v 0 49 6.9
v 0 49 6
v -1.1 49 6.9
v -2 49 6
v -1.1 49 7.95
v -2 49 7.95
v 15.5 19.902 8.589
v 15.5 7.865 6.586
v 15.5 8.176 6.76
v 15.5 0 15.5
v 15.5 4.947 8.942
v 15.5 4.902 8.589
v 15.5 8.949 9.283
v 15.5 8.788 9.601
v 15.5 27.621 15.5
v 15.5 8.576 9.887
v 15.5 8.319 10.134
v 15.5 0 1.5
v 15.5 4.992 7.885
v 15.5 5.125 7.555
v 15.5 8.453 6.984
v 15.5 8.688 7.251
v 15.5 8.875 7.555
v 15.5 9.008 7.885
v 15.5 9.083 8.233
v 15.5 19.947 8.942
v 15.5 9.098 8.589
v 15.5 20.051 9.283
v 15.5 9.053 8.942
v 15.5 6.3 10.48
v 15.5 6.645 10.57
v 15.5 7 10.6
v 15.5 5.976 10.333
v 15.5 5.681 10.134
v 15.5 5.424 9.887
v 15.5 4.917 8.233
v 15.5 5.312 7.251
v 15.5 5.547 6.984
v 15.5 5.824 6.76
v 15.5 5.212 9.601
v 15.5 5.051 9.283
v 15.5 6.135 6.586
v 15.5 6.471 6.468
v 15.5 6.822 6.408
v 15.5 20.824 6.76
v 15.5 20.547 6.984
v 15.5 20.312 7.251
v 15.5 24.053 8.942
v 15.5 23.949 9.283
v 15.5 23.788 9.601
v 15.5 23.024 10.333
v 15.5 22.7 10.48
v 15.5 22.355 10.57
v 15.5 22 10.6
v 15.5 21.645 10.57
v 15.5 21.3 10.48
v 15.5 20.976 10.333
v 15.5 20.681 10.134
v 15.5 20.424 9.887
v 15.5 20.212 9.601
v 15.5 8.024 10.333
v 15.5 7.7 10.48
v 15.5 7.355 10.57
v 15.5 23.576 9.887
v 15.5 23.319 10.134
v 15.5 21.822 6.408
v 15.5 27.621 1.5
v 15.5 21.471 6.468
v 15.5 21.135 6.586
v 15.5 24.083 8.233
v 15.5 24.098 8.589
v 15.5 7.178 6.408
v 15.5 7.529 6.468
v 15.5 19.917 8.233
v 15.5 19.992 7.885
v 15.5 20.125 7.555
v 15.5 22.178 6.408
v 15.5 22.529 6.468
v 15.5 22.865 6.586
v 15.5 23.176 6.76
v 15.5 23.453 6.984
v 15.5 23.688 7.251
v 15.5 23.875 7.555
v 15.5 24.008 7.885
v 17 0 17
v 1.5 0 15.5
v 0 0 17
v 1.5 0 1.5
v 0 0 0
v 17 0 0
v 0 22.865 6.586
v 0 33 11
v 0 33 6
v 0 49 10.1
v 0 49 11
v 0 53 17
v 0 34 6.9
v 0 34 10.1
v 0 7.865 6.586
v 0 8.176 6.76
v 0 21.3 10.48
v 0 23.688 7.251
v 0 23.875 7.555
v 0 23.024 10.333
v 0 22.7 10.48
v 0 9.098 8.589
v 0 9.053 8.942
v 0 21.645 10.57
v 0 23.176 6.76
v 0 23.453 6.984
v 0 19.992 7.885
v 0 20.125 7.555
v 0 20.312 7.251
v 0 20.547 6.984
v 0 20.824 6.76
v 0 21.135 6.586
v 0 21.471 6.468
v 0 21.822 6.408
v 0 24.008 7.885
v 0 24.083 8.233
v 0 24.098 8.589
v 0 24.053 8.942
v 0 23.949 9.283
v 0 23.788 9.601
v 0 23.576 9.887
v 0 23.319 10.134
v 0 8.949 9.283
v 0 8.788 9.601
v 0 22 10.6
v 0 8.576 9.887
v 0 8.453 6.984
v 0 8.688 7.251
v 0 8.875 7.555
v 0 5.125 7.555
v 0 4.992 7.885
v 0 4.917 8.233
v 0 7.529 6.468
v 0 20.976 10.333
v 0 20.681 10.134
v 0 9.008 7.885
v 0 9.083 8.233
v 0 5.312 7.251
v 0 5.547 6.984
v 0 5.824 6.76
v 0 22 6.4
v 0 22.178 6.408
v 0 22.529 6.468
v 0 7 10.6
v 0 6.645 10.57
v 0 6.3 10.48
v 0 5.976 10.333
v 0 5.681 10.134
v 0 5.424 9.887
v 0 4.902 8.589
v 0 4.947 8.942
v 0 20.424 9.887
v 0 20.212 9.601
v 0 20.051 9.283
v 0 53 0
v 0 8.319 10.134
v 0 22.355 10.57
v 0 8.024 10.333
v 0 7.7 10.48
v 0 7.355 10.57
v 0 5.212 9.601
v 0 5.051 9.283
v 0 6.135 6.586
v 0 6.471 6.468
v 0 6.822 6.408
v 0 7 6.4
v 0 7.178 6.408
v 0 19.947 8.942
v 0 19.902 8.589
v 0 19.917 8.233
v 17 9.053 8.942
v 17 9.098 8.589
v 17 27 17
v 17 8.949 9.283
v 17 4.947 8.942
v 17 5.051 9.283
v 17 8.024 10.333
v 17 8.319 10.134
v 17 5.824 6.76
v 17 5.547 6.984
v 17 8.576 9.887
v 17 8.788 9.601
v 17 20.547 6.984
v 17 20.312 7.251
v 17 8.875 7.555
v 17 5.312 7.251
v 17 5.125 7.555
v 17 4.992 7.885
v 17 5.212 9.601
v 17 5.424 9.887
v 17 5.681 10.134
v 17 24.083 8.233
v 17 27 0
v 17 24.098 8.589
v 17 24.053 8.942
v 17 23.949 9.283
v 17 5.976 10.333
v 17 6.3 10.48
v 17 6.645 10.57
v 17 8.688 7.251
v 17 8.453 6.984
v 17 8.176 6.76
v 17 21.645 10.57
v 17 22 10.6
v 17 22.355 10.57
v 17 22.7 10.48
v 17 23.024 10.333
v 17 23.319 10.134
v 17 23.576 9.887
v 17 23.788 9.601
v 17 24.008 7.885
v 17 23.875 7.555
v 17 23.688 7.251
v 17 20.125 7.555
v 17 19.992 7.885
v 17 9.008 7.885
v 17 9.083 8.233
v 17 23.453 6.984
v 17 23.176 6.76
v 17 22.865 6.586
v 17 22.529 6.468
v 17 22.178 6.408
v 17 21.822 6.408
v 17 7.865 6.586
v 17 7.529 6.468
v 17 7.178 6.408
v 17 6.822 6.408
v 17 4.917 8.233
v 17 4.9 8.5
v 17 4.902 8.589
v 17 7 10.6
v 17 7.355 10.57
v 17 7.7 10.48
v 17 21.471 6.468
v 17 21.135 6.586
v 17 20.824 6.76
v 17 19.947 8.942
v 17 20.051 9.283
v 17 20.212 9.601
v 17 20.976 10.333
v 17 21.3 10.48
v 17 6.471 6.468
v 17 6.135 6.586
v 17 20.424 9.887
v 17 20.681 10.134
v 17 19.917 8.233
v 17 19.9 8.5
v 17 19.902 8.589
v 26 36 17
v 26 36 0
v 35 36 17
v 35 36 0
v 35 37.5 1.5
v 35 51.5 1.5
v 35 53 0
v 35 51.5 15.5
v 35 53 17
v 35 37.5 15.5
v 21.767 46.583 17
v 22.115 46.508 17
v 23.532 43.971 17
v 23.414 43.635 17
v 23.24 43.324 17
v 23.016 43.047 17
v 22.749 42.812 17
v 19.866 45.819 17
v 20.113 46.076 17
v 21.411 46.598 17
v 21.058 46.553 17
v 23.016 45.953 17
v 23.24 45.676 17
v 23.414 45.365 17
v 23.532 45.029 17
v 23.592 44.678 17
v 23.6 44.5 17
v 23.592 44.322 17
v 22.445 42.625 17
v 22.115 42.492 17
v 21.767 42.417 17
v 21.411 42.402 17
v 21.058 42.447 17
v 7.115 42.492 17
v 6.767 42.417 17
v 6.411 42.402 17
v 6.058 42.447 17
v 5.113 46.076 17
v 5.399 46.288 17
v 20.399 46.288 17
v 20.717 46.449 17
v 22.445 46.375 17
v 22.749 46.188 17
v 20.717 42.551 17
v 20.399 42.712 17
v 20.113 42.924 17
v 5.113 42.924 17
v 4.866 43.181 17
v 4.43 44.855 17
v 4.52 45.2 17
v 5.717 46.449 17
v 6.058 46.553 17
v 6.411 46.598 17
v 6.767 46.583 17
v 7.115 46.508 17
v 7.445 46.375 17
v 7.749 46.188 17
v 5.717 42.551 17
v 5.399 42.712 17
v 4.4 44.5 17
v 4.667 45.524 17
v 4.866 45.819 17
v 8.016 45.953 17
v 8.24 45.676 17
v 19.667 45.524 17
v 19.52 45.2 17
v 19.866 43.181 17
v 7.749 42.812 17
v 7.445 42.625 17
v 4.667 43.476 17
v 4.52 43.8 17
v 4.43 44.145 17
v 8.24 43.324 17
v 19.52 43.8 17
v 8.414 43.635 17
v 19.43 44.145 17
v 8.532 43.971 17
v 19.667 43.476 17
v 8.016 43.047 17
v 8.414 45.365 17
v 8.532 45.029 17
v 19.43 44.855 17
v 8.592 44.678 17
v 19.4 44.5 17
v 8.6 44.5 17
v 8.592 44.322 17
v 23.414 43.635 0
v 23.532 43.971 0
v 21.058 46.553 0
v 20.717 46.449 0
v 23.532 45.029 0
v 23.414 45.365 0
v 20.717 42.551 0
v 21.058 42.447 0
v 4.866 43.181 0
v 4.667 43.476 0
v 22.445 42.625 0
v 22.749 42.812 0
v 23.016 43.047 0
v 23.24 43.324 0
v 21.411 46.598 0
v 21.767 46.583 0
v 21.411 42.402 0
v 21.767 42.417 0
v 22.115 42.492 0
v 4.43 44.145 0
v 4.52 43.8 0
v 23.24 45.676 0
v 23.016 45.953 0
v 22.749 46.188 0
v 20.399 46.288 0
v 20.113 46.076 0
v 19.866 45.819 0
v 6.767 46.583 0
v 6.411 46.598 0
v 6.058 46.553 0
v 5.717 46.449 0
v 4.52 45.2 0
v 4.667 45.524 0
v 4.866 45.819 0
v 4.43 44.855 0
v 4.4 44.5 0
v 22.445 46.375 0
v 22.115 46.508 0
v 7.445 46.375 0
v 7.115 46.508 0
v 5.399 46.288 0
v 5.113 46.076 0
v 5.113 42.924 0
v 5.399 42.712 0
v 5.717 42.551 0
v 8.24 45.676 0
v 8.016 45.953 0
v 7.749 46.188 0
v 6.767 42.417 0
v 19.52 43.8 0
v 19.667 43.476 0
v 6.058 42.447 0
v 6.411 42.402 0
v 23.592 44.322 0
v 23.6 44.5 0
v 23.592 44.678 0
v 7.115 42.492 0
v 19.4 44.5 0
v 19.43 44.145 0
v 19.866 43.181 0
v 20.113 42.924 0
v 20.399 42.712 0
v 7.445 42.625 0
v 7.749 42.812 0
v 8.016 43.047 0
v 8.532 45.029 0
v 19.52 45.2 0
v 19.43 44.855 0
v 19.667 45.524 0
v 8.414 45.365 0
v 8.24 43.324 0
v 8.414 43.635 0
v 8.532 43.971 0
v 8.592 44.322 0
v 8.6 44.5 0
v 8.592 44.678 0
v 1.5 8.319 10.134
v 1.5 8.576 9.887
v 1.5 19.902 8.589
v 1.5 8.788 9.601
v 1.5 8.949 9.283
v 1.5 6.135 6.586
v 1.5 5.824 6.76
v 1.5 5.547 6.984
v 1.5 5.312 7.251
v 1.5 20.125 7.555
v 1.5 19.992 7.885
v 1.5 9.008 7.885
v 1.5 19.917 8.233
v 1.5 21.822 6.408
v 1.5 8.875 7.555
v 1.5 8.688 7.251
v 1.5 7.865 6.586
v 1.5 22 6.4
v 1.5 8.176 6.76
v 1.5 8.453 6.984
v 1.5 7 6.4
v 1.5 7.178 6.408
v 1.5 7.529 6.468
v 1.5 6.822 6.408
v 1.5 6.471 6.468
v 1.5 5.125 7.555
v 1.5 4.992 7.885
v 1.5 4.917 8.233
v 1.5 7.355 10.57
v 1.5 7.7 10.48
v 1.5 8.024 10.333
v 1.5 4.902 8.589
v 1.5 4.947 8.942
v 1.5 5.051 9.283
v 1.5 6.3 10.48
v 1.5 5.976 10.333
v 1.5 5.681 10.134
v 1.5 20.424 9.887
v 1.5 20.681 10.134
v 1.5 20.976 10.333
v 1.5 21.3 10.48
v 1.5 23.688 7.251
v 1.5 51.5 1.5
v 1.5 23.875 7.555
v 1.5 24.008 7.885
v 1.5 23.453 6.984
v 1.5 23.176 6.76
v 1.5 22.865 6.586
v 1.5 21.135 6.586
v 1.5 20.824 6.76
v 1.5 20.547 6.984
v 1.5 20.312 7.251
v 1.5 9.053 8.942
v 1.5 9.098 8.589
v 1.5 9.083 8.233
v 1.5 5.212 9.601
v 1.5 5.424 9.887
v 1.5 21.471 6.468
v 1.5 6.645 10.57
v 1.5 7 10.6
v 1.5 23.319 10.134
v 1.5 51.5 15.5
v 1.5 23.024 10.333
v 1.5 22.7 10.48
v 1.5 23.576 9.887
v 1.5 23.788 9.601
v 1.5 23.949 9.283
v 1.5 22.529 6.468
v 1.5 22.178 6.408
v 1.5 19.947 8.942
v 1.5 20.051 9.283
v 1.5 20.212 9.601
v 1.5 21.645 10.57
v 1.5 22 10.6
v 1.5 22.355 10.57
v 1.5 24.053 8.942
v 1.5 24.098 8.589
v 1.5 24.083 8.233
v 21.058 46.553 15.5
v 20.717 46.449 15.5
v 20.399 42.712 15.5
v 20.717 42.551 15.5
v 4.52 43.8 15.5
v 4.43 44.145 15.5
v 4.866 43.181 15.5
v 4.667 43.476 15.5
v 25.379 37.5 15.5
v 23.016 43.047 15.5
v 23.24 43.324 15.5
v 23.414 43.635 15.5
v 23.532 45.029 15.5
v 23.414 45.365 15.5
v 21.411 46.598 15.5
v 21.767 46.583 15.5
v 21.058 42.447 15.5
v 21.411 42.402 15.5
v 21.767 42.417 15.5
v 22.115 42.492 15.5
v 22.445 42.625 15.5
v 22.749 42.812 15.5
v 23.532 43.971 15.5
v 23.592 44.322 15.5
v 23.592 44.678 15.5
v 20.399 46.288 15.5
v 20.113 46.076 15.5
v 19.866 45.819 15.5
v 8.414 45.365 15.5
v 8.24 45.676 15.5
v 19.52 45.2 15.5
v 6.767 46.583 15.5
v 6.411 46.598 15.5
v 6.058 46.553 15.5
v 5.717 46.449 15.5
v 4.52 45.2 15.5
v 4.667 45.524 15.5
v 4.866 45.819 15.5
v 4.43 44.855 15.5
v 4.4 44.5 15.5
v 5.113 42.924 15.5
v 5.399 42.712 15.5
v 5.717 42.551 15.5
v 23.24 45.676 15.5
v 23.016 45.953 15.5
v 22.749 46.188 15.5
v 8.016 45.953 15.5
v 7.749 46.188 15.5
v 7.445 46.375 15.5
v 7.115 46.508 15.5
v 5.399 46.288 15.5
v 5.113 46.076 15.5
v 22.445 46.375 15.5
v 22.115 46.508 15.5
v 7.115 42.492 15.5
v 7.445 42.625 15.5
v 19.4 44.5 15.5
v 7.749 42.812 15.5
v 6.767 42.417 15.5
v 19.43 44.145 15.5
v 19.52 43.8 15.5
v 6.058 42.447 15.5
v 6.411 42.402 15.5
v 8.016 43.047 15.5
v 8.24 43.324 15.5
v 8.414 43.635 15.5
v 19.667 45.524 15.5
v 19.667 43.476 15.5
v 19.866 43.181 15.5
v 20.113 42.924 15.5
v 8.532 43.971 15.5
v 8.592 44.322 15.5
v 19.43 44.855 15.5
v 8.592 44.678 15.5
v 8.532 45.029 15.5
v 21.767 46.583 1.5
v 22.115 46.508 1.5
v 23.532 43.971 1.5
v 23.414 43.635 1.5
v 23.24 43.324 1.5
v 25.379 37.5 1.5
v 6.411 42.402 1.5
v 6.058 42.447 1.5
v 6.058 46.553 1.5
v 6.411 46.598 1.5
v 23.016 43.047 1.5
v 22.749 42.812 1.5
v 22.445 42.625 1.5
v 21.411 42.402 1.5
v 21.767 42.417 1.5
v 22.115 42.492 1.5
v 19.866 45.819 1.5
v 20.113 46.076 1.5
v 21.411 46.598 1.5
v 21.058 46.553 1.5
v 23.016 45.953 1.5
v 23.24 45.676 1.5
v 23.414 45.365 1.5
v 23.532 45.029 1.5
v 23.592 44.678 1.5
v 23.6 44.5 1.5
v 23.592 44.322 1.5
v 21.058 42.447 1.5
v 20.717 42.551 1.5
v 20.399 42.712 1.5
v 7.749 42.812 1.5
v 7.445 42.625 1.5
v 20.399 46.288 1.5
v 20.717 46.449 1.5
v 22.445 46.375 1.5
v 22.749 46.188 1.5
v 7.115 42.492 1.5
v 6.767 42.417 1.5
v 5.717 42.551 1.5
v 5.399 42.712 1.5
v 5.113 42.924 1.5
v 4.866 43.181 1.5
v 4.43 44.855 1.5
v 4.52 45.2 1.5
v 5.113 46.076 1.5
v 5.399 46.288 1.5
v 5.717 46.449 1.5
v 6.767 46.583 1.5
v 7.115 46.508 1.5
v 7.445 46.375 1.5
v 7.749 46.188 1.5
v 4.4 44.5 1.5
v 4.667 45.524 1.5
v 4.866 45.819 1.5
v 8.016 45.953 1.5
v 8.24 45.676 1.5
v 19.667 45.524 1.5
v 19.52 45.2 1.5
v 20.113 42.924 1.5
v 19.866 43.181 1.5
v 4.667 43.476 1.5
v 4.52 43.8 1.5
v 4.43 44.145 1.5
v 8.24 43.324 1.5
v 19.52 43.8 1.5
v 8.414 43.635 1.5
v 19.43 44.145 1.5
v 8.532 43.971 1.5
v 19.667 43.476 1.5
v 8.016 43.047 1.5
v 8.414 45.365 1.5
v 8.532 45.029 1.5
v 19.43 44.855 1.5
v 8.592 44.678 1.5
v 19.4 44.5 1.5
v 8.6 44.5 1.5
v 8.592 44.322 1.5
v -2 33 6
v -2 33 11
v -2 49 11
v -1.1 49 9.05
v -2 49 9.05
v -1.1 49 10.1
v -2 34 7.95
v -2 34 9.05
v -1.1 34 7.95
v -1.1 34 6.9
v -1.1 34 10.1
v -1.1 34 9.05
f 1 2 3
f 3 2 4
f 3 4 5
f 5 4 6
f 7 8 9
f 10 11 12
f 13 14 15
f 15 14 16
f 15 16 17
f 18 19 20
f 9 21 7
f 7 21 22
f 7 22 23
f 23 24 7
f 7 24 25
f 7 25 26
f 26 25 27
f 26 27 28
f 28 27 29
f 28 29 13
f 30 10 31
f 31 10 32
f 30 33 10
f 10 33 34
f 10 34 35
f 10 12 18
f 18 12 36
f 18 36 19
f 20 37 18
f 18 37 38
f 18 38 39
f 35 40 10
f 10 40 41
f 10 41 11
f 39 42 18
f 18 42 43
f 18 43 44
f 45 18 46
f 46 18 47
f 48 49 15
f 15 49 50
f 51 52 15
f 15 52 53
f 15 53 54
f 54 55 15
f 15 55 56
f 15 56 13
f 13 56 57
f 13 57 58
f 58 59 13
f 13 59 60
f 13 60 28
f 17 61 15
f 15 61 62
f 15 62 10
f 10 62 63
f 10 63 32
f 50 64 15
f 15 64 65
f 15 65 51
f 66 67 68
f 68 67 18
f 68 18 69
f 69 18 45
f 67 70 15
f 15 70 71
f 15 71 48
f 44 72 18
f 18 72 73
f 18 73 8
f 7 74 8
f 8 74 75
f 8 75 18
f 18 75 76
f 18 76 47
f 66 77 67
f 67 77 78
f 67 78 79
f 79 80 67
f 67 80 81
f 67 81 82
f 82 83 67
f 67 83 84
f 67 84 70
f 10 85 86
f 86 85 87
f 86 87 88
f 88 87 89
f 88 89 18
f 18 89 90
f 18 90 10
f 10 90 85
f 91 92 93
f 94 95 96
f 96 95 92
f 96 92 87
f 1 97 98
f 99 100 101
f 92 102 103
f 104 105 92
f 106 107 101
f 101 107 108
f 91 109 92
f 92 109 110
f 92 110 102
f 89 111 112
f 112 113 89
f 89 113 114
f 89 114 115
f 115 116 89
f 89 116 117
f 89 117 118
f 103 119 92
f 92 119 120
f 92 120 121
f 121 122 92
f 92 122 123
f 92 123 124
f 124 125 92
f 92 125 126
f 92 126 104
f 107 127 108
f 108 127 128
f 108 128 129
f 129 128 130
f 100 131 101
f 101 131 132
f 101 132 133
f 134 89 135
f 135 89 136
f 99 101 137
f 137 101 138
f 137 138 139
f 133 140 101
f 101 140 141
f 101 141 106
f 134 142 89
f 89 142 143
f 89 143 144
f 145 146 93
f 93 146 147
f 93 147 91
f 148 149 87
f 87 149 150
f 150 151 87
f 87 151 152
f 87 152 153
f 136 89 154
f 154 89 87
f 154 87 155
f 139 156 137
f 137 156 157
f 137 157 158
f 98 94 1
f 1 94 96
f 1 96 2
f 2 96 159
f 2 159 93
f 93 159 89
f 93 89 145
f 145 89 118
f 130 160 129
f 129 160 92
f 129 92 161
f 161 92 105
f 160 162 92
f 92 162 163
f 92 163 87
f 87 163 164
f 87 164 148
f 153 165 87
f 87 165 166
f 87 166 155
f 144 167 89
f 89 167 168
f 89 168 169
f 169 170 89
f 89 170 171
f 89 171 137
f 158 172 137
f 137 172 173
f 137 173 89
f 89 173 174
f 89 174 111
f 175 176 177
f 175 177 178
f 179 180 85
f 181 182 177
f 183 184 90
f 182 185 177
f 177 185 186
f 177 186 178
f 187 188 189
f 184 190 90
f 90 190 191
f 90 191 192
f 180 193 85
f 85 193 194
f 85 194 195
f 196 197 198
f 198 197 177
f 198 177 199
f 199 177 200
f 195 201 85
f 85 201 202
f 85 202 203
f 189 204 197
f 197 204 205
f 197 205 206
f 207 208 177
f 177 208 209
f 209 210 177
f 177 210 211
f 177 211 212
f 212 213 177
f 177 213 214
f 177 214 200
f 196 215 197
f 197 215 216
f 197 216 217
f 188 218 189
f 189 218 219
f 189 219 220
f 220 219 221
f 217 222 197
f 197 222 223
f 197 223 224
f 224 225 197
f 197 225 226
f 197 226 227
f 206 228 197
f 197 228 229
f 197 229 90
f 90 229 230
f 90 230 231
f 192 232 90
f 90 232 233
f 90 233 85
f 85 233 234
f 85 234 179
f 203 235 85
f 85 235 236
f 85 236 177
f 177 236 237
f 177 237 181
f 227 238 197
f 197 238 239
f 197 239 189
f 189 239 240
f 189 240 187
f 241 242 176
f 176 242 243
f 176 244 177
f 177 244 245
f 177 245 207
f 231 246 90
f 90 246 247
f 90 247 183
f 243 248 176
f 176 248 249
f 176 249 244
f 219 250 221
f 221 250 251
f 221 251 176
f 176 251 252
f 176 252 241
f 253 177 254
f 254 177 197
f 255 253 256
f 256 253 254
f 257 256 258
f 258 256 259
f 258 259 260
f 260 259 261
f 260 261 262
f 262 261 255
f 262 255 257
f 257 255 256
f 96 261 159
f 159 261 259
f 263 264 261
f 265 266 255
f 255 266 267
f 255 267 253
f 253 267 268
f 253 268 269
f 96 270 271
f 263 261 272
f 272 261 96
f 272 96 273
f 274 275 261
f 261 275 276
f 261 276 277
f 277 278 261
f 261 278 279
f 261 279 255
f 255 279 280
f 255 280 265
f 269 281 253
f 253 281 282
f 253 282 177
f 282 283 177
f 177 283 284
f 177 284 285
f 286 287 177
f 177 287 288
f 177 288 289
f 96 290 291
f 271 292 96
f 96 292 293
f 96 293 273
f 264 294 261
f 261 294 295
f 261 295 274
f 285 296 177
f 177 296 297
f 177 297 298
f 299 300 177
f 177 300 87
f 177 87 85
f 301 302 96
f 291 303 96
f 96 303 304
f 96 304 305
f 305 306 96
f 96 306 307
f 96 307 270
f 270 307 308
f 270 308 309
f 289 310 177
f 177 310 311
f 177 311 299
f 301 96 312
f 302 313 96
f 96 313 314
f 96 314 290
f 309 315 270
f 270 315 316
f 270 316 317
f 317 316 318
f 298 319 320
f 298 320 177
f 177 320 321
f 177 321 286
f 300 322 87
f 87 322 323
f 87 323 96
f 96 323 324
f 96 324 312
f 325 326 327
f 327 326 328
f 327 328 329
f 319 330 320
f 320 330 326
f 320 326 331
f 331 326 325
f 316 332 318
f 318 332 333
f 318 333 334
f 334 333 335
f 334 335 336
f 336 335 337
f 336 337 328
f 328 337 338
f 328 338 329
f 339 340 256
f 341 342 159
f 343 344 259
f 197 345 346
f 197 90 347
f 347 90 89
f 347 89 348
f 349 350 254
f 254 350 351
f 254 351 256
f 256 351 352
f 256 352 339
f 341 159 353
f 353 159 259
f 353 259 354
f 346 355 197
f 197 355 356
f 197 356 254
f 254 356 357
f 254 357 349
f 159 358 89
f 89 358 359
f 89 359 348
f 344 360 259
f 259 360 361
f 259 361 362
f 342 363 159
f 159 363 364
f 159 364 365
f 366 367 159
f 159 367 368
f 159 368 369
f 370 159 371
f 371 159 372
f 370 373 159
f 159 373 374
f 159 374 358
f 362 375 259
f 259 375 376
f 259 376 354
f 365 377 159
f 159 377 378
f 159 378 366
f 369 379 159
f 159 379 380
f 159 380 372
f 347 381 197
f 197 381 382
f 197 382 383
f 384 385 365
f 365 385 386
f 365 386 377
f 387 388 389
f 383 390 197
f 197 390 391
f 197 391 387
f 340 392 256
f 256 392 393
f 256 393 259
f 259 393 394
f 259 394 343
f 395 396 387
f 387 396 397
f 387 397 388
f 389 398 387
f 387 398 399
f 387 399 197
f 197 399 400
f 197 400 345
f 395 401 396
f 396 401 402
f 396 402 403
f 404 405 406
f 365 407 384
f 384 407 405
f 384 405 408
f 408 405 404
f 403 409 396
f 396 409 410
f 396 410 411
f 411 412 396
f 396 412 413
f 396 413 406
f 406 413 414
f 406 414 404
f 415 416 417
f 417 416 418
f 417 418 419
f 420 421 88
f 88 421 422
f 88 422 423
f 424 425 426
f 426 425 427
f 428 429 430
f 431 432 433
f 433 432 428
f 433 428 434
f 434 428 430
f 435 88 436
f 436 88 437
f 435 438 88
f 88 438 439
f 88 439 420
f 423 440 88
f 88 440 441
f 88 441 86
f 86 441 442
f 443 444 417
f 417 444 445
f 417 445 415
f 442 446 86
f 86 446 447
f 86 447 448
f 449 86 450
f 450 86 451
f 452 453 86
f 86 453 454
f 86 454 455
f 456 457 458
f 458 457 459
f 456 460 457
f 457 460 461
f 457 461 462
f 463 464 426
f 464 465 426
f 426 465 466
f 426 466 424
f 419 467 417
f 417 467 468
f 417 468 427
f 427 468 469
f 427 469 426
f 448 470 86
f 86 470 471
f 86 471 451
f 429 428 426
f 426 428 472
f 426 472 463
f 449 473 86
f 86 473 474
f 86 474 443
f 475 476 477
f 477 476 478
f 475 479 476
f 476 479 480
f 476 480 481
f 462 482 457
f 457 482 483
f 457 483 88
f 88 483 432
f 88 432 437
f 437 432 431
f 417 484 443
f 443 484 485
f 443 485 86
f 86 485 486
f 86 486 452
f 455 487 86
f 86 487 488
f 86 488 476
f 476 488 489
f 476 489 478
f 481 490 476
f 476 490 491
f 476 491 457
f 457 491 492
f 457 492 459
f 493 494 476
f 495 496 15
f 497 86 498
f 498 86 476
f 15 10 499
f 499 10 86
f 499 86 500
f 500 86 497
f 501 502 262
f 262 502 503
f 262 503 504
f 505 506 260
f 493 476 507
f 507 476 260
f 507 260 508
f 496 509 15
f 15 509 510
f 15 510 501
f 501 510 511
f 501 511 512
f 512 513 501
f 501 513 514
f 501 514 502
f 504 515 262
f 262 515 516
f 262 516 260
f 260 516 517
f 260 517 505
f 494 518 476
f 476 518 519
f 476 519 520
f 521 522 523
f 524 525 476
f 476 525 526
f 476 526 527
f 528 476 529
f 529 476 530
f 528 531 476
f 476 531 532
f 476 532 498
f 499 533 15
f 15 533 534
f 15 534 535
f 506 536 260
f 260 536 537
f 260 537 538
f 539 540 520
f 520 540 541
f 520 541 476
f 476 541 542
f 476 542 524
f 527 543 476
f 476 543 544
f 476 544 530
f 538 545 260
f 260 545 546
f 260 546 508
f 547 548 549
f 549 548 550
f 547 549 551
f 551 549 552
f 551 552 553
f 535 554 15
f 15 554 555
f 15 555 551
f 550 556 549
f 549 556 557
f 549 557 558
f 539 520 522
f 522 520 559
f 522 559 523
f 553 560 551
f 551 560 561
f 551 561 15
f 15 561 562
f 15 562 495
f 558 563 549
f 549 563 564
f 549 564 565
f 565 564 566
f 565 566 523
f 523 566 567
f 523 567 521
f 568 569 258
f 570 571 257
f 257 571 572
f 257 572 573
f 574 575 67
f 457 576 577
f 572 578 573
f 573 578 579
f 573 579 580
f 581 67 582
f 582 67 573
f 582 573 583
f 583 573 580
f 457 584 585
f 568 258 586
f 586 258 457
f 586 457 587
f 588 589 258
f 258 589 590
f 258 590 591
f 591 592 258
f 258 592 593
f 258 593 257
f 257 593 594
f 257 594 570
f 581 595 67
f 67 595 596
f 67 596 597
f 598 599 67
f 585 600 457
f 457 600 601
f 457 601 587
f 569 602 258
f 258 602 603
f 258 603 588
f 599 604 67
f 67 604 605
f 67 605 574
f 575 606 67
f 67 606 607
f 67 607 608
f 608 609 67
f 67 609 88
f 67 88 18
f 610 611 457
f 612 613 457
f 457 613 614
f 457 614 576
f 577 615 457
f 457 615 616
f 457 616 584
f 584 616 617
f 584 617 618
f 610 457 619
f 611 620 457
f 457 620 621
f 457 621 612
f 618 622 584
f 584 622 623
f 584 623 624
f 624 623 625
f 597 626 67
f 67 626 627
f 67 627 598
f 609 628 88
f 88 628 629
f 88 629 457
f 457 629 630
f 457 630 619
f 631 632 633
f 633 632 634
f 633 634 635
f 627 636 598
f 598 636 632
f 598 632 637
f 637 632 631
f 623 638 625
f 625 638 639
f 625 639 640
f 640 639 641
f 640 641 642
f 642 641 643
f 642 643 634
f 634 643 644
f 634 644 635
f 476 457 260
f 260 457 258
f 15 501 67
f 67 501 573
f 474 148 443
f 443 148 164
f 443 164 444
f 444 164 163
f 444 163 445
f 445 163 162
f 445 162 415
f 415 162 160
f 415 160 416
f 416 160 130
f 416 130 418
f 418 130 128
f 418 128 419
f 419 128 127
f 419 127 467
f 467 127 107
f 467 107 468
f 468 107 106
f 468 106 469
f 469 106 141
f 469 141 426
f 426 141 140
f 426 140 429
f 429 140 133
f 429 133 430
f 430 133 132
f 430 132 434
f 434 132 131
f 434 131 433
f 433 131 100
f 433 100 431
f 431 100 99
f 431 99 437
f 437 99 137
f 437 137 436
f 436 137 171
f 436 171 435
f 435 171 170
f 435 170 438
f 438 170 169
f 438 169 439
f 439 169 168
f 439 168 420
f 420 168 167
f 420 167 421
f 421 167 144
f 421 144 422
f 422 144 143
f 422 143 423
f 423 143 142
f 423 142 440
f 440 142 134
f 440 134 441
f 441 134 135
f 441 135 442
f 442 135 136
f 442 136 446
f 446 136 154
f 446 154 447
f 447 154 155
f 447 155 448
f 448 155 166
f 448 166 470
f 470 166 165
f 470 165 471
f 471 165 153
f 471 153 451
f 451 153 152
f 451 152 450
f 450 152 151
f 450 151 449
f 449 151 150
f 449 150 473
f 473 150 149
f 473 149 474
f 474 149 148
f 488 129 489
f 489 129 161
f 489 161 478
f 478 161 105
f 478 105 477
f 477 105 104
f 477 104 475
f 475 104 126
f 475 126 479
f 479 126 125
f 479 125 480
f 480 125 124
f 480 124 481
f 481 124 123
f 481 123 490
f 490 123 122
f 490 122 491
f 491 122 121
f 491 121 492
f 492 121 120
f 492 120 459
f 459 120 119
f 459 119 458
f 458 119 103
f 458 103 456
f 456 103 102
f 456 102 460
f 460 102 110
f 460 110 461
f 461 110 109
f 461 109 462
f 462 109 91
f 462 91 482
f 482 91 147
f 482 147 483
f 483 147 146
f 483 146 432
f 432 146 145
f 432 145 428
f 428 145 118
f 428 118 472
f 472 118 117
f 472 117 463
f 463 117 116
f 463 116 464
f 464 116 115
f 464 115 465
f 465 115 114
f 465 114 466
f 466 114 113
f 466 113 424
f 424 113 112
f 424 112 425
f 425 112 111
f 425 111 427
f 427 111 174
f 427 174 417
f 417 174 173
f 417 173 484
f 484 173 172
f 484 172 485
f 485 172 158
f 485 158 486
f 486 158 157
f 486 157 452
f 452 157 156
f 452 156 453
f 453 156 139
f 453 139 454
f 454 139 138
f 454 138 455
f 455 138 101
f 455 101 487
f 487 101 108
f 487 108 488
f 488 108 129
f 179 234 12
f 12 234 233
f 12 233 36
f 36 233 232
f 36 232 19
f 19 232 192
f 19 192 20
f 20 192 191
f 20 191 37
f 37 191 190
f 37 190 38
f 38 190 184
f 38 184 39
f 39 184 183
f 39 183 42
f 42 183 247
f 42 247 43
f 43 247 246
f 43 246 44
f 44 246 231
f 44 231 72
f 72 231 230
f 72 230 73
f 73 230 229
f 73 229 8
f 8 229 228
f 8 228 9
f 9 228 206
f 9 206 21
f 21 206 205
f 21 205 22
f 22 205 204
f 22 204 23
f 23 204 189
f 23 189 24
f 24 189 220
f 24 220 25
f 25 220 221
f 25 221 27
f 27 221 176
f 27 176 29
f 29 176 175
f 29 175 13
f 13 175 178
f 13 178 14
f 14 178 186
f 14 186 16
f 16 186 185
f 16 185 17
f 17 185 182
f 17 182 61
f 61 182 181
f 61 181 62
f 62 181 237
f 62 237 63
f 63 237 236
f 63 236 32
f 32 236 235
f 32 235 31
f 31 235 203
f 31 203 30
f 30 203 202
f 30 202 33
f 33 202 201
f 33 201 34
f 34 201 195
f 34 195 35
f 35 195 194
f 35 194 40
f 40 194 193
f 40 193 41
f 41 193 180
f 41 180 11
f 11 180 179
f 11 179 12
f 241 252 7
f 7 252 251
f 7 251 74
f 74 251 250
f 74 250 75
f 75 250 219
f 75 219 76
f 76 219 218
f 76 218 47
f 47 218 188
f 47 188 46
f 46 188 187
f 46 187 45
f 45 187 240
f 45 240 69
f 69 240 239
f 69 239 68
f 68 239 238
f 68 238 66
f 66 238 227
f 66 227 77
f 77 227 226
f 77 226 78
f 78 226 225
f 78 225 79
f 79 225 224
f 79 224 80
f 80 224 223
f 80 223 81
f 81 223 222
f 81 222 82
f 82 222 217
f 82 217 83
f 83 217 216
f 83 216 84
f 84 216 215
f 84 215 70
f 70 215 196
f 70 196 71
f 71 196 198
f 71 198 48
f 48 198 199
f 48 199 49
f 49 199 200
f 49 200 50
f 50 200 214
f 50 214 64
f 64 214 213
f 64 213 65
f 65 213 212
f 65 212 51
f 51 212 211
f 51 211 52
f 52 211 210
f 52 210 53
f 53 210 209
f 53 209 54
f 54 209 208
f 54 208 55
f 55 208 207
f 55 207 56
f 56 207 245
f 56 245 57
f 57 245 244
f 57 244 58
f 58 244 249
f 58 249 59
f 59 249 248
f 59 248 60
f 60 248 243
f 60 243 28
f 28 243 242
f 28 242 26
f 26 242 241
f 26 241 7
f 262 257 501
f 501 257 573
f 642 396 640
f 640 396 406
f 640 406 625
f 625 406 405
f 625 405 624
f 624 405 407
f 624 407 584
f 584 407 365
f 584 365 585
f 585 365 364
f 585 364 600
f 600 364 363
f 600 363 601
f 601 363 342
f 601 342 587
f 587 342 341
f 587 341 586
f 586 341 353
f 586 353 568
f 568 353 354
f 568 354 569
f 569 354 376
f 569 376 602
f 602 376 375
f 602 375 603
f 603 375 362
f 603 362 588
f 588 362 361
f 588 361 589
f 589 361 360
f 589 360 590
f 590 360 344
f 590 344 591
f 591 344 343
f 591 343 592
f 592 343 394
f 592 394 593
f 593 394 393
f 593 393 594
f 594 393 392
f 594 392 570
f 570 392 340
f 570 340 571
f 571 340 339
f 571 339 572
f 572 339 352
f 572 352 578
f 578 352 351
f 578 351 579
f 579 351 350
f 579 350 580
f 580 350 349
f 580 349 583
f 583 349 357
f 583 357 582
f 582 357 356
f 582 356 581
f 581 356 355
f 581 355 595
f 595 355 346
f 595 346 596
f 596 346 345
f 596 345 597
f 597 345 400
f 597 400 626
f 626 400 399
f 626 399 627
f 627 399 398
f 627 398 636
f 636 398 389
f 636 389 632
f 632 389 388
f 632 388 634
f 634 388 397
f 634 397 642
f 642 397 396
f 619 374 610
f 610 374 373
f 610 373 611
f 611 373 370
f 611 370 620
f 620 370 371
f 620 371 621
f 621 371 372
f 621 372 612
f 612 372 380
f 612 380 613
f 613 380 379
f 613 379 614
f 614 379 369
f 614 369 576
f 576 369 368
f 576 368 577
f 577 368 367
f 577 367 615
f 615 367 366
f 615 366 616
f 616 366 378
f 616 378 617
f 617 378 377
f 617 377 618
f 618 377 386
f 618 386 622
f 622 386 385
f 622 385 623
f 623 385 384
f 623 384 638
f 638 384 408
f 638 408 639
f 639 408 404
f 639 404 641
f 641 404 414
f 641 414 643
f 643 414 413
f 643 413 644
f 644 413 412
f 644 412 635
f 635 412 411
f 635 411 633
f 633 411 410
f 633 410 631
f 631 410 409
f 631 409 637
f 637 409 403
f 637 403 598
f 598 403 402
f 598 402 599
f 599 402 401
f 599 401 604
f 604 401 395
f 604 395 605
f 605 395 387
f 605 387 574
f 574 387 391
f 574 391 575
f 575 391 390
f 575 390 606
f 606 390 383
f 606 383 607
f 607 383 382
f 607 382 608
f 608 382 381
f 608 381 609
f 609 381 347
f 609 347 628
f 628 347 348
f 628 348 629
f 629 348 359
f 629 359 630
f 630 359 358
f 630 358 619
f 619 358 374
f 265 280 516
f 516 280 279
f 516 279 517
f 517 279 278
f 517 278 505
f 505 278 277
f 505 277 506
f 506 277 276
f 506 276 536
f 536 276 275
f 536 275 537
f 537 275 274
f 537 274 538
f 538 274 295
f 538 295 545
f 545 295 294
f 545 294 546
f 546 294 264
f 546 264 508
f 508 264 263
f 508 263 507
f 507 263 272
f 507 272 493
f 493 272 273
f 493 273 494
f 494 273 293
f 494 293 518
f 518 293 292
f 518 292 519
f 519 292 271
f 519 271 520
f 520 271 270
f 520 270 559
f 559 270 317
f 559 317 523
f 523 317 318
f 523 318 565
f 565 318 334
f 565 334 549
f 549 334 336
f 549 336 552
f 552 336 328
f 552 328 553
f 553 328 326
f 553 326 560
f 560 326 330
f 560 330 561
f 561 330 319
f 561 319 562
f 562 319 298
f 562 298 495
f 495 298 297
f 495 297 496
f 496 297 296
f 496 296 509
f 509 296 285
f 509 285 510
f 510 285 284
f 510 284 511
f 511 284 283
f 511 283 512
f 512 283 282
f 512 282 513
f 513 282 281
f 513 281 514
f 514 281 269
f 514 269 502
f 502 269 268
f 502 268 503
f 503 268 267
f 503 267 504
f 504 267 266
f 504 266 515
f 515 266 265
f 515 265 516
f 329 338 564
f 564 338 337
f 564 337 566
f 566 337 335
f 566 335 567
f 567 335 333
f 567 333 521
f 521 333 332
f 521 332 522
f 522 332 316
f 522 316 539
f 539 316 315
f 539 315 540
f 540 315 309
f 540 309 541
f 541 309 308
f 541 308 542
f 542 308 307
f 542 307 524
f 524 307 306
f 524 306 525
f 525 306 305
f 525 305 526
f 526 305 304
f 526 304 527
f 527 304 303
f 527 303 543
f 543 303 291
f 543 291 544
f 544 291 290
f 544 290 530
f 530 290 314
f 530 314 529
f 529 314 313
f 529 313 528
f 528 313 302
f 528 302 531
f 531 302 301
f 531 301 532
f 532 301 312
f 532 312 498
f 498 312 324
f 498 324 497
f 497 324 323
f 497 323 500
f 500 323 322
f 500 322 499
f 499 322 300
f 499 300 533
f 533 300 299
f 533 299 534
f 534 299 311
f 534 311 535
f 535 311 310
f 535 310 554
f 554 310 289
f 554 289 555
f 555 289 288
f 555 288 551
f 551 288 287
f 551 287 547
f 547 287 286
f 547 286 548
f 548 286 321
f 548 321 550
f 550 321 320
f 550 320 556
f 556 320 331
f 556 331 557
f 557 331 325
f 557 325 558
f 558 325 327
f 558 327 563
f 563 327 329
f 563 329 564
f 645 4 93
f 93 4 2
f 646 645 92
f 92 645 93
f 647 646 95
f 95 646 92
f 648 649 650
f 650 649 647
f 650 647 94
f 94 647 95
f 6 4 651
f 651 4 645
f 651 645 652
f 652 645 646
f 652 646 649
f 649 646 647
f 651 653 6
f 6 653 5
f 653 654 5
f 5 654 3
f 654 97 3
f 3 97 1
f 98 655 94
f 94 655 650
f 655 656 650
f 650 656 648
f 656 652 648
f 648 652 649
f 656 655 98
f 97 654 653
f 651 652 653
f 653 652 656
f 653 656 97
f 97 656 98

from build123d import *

# Parameters (mm, degrees)
SHAPE_DEPTH                  = 17
SKETCH2_W                    = 14
SKETCH2_H                    = 14
THRUST_LOAD_CELL_SLOT_DEPTH  = 51.5
CHAMFER_HOLLOWING_DEPTH      = 14
SKETCH3_R                    = 2.1
THRUST_LOAD_CELL_HOLES_DEPTH = 66.749524713
SKETCH4_W                    = 14
SKETCH4_H                    = 14
TORQUE_LOAD_CELL_SLOT_DEPTH  = 27
SKETCH7_R                    = 2.1
TORQUE_LOAD_CELL_HOLES_DEPTH = 66.749524713
SKETCH8_W                    = 5
SKETCH8_H                    = 16
BOSS_EXTRUDE2_DEPTH          = 2
CUT_EXTRUDE1_DEPTH           = 15


with BuildPart() as part:
    # Sketch1 → Shape (new body)
    with BuildSketch(Plane.XY):
        Polygon((0, 0), (17, 0), (17, 27), (26, 36), (35, 36), (35, 53), (0, 53), align=None)
    extrude(amount=SHAPE_DEPTH)

    # Sketch2 → Thrust Load Cell Slot (cut)
    with BuildSketch(Plane(origin=(0, 0, 0), x_dir=(1, 0, 0), z_dir=(0, 1, 0))):
        with Locations((8.5, -8.5)):
            Rectangle(SKETCH2_W, SKETCH2_H)
    extrude(amount=THRUST_LOAD_CELL_SLOT_DEPTH, mode=Mode.SUBTRACT)

    # Sketch6 → Chamfer Hollowing (cut)
    with BuildSketch(Plane.XY.offset(1.5)):
        Polygon((25.378679656, 37.5), (15.5, 27.621320344), (15.5, 37.5), align=None)
    extrude(amount=CHAMFER_HOLLOWING_DEPTH, mode=Mode.SUBTRACT)

    # Sketch3 → Thrust Load Cell Holes (cut, through all)
    with BuildSketch(Plane(origin=(0, 0, 0), x_dir=(0, 0, -1), z_dir=(1, 0, 0))):
        with Locations((-8.5, 22)):
            Circle(SKETCH3_R)
        with Locations((-8.5, 7)):
            Circle(SKETCH3_R)
    extrude(amount=THRUST_LOAD_CELL_HOLES_DEPTH, mode=Mode.SUBTRACT)

    # Sketch4 → Torque Load Cell Slot (cut)
    with BuildSketch(Plane(origin=(35, 0, 0), x_dir=(0, 0, -1), z_dir=(1, 0, 0))):
        with Locations((-8.5, 44.5)):
            Rectangle(SKETCH4_W, SKETCH4_H)
    extrude(amount=-TORQUE_LOAD_CELL_SLOT_DEPTH, mode=Mode.SUBTRACT)

    # Sketch7 → Torque Load Cell Holes (cut, through all)
    with BuildSketch(Plane.XY):
        with Locations((6.5, 44.5)):
            Circle(SKETCH7_R)
        with Locations((21.5, 44.5)):
            Circle(SKETCH7_R)
    extrude(amount=TORQUE_LOAD_CELL_HOLES_DEPTH, mode=Mode.SUBTRACT)

    # Sketch8 → Boss-Extrude2 (add)
    with BuildSketch(Plane(origin=(0, 0, 0), x_dir=(0, 0, -1), z_dir=(1, 0, 0))):
        with Locations((-8.5, 41)):
            Rectangle(SKETCH8_W, SKETCH8_H)
    extrude(amount=-BOSS_EXTRUDE2_DEPTH)

    # Sketch9 → Cut-Extrude1 (cut)
    with BuildSketch(Plane(origin=(0, 49, 0), x_dir=(1, 0, 0), z_dir=(0, 1, 0))):
        Polygon((-2, -7.95), (-1.1, -7.95), (-1.1, -6.9), (0, -6.9), (0, -10.1), (-1.1, -10.1), (-1.1, -9.05), (-2, -9.05), align=None)
    extrude(amount=-CUT_EXTRUDE1_DEPTH, mode=Mode.SUBTRACT)


solid = part.part
